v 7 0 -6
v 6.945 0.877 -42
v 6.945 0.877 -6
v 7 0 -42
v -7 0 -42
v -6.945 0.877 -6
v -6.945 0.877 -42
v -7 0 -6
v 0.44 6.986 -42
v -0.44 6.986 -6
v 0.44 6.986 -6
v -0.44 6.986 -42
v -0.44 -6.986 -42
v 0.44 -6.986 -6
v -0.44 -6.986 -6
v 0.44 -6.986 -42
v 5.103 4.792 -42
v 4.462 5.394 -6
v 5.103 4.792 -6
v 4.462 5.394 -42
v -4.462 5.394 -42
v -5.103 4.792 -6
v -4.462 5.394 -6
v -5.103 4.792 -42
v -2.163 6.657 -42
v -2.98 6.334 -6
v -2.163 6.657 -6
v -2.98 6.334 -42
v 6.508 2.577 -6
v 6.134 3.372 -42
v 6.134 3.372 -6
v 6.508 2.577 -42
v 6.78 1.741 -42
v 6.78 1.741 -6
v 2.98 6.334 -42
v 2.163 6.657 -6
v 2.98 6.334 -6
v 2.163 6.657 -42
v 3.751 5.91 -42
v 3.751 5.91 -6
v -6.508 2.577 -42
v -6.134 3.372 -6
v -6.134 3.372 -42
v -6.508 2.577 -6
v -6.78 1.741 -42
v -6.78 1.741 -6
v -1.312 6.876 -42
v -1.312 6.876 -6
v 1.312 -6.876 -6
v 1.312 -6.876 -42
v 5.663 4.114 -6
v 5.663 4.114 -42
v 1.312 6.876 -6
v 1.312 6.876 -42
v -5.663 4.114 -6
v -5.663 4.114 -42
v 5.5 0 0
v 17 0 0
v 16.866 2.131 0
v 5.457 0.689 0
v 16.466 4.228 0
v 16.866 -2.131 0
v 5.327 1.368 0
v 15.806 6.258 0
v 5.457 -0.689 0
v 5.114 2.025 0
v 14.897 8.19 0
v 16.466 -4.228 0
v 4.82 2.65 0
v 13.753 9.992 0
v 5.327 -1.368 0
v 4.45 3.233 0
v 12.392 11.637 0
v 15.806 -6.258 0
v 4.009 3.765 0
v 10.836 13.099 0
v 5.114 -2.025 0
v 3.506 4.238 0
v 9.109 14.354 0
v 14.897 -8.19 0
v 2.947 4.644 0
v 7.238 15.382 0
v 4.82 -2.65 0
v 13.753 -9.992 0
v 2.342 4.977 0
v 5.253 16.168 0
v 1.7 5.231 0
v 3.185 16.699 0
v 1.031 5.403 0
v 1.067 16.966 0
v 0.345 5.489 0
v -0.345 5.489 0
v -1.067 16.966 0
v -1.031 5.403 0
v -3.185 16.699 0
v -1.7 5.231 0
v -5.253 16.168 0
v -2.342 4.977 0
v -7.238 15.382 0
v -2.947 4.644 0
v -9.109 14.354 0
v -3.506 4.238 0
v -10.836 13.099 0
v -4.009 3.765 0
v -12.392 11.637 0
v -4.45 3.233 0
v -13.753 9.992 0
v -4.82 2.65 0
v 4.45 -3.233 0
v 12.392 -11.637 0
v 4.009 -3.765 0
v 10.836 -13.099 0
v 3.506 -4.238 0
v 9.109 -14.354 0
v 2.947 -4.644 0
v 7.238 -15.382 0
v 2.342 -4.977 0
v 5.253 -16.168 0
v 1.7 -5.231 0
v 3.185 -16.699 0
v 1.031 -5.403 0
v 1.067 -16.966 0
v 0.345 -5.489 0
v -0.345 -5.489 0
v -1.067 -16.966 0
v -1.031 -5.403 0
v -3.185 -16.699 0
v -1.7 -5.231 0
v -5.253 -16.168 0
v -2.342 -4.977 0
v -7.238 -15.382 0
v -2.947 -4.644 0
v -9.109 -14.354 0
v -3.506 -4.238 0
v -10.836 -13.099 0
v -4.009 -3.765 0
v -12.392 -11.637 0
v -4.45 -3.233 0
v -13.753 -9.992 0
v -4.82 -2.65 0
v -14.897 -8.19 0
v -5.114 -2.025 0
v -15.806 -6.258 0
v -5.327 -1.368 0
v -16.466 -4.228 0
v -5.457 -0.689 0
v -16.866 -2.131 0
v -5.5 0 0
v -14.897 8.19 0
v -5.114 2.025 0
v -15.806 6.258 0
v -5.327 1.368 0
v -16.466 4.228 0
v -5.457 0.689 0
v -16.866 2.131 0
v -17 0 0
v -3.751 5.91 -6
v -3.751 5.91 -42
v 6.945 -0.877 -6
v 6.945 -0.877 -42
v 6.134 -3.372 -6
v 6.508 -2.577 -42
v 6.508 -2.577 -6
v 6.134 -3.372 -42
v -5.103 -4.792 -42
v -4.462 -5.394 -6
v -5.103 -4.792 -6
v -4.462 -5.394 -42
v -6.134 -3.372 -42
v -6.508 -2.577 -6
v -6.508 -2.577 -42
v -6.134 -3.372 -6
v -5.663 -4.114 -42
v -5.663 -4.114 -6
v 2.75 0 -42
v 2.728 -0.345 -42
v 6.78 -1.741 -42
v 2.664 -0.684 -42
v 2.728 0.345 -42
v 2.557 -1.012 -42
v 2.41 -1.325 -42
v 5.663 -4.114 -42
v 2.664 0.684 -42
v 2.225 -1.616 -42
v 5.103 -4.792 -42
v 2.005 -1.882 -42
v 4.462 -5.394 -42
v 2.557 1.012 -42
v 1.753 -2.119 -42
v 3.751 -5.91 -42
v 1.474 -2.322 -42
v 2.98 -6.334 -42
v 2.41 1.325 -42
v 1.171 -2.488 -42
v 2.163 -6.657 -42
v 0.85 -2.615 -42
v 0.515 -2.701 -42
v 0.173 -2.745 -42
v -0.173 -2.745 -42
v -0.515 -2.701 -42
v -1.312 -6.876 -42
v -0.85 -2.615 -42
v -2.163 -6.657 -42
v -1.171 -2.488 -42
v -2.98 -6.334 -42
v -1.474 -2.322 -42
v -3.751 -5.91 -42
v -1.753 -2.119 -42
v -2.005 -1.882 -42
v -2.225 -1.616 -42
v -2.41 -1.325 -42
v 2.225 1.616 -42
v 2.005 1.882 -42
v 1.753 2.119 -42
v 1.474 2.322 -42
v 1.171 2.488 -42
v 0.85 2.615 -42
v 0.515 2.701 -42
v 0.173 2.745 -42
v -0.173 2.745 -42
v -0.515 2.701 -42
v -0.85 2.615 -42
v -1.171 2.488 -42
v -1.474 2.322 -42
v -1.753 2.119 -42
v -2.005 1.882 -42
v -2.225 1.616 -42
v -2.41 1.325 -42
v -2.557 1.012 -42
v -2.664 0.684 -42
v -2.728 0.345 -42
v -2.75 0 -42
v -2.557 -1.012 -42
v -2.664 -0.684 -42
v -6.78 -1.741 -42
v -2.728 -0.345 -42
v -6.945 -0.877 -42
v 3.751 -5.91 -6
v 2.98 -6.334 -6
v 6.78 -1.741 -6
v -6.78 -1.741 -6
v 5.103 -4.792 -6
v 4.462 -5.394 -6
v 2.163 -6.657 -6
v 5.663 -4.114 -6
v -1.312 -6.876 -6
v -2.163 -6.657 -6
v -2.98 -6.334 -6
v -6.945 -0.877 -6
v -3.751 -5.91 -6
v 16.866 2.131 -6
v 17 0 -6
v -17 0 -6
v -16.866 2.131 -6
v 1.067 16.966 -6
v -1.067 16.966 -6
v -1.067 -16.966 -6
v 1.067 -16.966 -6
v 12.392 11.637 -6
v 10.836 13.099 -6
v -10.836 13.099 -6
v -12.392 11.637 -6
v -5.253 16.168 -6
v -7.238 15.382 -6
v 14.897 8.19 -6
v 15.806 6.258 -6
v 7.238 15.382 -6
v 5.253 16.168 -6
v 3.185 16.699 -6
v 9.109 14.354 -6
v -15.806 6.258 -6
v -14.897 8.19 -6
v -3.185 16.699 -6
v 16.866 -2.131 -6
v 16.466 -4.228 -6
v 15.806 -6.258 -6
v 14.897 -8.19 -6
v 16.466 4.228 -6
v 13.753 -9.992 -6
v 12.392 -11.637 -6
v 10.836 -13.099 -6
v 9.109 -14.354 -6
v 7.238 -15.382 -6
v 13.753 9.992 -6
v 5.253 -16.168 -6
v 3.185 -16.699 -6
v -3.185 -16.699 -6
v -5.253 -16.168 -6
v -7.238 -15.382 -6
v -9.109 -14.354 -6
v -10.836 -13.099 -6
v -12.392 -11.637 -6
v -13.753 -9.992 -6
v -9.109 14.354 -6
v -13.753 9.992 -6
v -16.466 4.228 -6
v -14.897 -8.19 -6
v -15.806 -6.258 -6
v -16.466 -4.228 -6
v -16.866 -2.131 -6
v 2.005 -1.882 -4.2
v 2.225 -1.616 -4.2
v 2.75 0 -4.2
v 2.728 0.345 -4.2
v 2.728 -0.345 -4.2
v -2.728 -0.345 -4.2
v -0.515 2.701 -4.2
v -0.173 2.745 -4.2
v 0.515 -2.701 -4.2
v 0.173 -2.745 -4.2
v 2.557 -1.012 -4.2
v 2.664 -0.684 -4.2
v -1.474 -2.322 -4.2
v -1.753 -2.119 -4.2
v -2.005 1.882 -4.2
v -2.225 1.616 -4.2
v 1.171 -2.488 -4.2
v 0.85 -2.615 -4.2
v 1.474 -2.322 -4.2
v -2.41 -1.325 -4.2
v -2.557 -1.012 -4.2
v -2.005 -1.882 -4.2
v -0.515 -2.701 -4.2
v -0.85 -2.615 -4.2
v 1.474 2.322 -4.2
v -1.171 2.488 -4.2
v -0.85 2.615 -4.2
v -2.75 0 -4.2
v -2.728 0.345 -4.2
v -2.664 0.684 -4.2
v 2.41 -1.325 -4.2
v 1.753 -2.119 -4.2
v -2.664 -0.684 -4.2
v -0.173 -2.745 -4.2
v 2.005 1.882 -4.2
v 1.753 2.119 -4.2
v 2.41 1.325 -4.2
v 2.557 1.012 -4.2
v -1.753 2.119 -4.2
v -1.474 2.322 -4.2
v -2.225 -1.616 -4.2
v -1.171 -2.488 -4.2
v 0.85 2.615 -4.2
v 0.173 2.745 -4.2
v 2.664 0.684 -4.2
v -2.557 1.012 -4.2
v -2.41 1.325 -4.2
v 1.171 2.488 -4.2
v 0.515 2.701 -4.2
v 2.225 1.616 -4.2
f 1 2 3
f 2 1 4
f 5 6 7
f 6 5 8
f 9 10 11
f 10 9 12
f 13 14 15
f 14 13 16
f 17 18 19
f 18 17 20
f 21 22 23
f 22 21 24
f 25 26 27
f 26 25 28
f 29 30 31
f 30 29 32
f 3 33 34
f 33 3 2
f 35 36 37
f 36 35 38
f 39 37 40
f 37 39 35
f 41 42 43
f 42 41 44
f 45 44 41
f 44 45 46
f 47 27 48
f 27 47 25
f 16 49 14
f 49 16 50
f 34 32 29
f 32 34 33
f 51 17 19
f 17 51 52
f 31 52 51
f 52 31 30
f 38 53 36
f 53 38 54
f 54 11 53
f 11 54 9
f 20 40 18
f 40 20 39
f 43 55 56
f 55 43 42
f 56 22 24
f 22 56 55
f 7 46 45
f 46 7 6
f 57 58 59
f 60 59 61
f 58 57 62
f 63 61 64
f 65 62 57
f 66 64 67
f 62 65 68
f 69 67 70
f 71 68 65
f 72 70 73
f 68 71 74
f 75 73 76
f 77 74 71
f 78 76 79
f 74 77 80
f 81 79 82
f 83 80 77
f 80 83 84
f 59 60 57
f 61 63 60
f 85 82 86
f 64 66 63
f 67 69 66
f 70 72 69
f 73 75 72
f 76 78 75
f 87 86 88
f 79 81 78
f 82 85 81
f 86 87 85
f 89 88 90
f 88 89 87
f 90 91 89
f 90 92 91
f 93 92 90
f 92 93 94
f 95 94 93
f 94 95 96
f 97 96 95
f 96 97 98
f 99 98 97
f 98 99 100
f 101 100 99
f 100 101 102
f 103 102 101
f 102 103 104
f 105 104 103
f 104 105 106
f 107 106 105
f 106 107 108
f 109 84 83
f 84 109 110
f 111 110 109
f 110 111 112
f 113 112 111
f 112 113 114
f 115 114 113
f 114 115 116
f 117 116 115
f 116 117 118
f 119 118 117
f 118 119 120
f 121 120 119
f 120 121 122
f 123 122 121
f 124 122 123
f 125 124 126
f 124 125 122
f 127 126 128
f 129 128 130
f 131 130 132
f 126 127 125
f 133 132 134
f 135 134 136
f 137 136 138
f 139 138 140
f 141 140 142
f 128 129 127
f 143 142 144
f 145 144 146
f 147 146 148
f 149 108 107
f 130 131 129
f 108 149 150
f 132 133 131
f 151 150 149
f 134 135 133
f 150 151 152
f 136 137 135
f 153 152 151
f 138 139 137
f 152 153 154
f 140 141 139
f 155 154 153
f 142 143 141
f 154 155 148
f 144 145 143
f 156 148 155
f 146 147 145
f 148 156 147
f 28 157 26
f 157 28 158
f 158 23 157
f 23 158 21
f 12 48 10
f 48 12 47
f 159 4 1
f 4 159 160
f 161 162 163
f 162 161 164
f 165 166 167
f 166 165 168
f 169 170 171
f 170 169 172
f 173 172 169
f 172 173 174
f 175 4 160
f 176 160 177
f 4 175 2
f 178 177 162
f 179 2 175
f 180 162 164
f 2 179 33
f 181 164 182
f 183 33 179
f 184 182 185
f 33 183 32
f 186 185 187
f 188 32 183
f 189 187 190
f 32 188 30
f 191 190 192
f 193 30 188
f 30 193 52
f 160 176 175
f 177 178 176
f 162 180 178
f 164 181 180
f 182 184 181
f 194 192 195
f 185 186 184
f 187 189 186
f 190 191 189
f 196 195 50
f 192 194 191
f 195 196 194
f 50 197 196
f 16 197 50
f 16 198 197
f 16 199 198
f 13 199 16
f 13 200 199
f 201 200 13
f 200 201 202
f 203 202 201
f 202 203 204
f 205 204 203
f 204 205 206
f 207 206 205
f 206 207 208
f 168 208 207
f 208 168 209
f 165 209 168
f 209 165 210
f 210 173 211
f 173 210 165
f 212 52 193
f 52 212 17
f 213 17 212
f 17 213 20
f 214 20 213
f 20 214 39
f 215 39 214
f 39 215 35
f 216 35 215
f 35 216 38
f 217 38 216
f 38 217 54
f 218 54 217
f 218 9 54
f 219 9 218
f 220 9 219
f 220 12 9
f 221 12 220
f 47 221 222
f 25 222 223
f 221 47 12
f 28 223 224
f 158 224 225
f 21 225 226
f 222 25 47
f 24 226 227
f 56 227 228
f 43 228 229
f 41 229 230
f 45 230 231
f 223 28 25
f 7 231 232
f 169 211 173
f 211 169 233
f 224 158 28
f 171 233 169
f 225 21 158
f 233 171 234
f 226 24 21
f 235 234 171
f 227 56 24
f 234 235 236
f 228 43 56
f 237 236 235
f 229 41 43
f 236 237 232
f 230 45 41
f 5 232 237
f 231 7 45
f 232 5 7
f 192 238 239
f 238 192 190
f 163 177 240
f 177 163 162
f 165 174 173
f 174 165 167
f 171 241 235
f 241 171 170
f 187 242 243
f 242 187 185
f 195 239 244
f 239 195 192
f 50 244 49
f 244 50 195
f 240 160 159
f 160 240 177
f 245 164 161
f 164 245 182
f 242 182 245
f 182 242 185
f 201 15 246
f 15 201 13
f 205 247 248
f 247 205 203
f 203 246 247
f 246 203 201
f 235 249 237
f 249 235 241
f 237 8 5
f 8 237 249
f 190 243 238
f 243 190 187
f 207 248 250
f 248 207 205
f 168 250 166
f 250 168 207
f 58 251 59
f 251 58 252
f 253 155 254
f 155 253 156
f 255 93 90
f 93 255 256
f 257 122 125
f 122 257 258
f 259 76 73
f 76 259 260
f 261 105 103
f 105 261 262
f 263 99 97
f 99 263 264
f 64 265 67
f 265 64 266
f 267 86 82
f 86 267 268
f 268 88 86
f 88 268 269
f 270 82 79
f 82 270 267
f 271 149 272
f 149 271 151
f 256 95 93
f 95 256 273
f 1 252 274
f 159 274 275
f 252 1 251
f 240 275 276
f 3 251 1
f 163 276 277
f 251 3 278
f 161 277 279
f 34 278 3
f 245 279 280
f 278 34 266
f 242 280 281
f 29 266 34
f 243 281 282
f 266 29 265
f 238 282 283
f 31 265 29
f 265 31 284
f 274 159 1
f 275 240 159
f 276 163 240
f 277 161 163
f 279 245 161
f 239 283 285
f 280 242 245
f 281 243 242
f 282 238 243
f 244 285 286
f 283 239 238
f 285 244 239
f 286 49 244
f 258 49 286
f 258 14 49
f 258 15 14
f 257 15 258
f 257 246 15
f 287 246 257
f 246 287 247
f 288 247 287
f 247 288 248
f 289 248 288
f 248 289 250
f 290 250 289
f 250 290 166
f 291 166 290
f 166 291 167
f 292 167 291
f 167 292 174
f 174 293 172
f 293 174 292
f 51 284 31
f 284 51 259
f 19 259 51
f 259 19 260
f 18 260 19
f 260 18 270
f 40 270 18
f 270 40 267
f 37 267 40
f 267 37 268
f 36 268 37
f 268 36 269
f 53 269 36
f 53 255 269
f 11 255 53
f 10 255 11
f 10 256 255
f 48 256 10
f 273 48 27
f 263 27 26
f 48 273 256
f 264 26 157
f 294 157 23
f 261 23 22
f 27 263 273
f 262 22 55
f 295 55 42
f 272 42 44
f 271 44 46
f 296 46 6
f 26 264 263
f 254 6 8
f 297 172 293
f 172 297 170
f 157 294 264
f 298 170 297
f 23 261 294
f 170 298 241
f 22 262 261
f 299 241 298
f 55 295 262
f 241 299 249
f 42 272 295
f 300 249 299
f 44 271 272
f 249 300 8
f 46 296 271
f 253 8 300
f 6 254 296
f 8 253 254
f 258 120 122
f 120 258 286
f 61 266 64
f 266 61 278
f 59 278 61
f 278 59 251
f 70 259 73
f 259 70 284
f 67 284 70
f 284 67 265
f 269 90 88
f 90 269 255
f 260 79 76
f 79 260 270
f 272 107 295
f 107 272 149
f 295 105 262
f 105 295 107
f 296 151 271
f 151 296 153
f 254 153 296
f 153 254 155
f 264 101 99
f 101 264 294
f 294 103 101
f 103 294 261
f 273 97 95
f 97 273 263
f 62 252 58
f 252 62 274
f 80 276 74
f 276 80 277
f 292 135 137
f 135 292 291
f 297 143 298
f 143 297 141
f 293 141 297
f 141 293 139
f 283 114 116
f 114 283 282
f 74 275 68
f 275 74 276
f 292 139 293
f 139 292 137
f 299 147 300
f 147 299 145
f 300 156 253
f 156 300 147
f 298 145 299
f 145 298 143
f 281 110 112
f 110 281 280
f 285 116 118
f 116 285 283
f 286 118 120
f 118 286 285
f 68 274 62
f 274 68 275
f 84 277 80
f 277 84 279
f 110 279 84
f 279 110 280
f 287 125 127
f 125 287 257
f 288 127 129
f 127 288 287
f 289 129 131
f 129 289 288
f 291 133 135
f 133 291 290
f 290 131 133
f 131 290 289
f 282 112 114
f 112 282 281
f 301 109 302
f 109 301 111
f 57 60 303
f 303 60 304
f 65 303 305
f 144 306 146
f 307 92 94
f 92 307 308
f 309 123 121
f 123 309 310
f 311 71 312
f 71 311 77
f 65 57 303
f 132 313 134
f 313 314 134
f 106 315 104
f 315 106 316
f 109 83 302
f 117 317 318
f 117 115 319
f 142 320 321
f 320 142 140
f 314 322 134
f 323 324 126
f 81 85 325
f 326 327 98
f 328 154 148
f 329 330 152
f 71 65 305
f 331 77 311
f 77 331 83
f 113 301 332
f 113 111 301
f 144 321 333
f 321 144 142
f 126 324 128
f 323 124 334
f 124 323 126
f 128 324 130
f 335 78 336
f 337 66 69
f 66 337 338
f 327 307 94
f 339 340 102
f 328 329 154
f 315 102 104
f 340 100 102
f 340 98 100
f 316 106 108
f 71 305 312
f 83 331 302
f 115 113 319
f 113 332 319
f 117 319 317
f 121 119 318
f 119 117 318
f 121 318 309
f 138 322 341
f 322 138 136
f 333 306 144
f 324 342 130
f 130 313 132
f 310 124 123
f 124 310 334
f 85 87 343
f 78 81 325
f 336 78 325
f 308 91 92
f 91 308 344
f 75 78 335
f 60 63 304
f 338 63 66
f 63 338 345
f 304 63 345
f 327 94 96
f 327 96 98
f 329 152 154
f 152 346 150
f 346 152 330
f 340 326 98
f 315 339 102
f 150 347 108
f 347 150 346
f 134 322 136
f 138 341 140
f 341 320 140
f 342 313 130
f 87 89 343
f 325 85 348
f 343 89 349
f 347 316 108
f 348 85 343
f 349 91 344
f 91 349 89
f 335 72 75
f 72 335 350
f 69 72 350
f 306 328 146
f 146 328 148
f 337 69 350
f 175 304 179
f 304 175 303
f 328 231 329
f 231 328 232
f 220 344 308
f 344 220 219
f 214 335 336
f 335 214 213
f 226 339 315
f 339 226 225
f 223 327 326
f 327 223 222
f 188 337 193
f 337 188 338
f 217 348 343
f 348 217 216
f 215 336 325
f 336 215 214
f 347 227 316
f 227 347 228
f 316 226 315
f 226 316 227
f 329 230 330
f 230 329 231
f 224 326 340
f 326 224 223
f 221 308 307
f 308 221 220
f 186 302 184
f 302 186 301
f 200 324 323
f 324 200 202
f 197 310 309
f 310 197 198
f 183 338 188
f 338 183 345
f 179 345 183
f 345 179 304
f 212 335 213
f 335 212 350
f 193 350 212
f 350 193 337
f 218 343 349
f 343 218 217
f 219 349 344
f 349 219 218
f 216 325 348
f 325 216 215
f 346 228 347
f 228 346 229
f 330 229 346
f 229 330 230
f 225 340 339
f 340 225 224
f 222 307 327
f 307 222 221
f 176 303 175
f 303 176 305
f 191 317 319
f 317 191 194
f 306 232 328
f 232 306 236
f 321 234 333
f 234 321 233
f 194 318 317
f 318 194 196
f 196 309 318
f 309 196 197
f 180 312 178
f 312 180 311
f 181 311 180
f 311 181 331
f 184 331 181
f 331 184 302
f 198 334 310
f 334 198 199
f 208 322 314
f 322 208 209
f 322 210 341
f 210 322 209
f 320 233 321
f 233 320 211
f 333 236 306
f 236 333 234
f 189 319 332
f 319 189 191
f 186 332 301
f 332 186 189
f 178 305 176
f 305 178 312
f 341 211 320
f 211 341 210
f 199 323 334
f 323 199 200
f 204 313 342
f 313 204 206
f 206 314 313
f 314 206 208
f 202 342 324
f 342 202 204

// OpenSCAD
$fn = 50;


difference() {
	union() {
		translate(v = [0, 0, -42.0000000000]) {
			cylinder(h = 42, r = 7.0000000000);
		}
		translate(v = [0, 0, -6.0000000000]) {
			cylinder(h = 6, r = 17.0000000000);
		}
	}
	union() {
		translate(v = [0, 0, 0]) {
			rotate(a = [0, 0, 0]) {
				difference() {
					union() {
						#translate(v = [0, 0, -42.0000000000]) {
							cylinder(h = 42, r = 2.2500000000);
						}
						#translate(v = [0, 0, -4.2000000000]) {
							cylinder(h = 4.2000000000, r1 = 2.7500000000, r2 = 5.5000000000);
						}
						#translate(v = [0, 0, -42.0000000000]) {
							cylinder(h = 42, r = 2.7500000000);
						}
						#translate(v = [0, 0, -42.0000000000]) {
							cylinder(h = 42, r = 2.2500000000);
						}
					}
					union();
				}
			}
		}
	}
}
